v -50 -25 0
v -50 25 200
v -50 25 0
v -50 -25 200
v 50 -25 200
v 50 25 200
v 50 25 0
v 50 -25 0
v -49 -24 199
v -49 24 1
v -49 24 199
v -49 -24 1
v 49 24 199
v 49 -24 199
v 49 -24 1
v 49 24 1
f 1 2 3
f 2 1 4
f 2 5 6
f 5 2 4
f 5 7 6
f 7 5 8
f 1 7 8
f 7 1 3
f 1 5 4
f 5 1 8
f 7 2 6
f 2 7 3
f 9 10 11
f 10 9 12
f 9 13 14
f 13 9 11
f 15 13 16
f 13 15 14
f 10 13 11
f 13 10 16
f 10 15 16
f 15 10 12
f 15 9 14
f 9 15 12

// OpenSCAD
width =100;
depth =50;
height=200;
wall_thickness=1;

module box(w=width,d=depth,h=height,t=wall_thickness) {
    translate([0,0,h/2])
        difference() {
            cube([w,d,h],true);
            cube([w-2*t,d-2*t,h-2*t],true);
        }
}

box();
